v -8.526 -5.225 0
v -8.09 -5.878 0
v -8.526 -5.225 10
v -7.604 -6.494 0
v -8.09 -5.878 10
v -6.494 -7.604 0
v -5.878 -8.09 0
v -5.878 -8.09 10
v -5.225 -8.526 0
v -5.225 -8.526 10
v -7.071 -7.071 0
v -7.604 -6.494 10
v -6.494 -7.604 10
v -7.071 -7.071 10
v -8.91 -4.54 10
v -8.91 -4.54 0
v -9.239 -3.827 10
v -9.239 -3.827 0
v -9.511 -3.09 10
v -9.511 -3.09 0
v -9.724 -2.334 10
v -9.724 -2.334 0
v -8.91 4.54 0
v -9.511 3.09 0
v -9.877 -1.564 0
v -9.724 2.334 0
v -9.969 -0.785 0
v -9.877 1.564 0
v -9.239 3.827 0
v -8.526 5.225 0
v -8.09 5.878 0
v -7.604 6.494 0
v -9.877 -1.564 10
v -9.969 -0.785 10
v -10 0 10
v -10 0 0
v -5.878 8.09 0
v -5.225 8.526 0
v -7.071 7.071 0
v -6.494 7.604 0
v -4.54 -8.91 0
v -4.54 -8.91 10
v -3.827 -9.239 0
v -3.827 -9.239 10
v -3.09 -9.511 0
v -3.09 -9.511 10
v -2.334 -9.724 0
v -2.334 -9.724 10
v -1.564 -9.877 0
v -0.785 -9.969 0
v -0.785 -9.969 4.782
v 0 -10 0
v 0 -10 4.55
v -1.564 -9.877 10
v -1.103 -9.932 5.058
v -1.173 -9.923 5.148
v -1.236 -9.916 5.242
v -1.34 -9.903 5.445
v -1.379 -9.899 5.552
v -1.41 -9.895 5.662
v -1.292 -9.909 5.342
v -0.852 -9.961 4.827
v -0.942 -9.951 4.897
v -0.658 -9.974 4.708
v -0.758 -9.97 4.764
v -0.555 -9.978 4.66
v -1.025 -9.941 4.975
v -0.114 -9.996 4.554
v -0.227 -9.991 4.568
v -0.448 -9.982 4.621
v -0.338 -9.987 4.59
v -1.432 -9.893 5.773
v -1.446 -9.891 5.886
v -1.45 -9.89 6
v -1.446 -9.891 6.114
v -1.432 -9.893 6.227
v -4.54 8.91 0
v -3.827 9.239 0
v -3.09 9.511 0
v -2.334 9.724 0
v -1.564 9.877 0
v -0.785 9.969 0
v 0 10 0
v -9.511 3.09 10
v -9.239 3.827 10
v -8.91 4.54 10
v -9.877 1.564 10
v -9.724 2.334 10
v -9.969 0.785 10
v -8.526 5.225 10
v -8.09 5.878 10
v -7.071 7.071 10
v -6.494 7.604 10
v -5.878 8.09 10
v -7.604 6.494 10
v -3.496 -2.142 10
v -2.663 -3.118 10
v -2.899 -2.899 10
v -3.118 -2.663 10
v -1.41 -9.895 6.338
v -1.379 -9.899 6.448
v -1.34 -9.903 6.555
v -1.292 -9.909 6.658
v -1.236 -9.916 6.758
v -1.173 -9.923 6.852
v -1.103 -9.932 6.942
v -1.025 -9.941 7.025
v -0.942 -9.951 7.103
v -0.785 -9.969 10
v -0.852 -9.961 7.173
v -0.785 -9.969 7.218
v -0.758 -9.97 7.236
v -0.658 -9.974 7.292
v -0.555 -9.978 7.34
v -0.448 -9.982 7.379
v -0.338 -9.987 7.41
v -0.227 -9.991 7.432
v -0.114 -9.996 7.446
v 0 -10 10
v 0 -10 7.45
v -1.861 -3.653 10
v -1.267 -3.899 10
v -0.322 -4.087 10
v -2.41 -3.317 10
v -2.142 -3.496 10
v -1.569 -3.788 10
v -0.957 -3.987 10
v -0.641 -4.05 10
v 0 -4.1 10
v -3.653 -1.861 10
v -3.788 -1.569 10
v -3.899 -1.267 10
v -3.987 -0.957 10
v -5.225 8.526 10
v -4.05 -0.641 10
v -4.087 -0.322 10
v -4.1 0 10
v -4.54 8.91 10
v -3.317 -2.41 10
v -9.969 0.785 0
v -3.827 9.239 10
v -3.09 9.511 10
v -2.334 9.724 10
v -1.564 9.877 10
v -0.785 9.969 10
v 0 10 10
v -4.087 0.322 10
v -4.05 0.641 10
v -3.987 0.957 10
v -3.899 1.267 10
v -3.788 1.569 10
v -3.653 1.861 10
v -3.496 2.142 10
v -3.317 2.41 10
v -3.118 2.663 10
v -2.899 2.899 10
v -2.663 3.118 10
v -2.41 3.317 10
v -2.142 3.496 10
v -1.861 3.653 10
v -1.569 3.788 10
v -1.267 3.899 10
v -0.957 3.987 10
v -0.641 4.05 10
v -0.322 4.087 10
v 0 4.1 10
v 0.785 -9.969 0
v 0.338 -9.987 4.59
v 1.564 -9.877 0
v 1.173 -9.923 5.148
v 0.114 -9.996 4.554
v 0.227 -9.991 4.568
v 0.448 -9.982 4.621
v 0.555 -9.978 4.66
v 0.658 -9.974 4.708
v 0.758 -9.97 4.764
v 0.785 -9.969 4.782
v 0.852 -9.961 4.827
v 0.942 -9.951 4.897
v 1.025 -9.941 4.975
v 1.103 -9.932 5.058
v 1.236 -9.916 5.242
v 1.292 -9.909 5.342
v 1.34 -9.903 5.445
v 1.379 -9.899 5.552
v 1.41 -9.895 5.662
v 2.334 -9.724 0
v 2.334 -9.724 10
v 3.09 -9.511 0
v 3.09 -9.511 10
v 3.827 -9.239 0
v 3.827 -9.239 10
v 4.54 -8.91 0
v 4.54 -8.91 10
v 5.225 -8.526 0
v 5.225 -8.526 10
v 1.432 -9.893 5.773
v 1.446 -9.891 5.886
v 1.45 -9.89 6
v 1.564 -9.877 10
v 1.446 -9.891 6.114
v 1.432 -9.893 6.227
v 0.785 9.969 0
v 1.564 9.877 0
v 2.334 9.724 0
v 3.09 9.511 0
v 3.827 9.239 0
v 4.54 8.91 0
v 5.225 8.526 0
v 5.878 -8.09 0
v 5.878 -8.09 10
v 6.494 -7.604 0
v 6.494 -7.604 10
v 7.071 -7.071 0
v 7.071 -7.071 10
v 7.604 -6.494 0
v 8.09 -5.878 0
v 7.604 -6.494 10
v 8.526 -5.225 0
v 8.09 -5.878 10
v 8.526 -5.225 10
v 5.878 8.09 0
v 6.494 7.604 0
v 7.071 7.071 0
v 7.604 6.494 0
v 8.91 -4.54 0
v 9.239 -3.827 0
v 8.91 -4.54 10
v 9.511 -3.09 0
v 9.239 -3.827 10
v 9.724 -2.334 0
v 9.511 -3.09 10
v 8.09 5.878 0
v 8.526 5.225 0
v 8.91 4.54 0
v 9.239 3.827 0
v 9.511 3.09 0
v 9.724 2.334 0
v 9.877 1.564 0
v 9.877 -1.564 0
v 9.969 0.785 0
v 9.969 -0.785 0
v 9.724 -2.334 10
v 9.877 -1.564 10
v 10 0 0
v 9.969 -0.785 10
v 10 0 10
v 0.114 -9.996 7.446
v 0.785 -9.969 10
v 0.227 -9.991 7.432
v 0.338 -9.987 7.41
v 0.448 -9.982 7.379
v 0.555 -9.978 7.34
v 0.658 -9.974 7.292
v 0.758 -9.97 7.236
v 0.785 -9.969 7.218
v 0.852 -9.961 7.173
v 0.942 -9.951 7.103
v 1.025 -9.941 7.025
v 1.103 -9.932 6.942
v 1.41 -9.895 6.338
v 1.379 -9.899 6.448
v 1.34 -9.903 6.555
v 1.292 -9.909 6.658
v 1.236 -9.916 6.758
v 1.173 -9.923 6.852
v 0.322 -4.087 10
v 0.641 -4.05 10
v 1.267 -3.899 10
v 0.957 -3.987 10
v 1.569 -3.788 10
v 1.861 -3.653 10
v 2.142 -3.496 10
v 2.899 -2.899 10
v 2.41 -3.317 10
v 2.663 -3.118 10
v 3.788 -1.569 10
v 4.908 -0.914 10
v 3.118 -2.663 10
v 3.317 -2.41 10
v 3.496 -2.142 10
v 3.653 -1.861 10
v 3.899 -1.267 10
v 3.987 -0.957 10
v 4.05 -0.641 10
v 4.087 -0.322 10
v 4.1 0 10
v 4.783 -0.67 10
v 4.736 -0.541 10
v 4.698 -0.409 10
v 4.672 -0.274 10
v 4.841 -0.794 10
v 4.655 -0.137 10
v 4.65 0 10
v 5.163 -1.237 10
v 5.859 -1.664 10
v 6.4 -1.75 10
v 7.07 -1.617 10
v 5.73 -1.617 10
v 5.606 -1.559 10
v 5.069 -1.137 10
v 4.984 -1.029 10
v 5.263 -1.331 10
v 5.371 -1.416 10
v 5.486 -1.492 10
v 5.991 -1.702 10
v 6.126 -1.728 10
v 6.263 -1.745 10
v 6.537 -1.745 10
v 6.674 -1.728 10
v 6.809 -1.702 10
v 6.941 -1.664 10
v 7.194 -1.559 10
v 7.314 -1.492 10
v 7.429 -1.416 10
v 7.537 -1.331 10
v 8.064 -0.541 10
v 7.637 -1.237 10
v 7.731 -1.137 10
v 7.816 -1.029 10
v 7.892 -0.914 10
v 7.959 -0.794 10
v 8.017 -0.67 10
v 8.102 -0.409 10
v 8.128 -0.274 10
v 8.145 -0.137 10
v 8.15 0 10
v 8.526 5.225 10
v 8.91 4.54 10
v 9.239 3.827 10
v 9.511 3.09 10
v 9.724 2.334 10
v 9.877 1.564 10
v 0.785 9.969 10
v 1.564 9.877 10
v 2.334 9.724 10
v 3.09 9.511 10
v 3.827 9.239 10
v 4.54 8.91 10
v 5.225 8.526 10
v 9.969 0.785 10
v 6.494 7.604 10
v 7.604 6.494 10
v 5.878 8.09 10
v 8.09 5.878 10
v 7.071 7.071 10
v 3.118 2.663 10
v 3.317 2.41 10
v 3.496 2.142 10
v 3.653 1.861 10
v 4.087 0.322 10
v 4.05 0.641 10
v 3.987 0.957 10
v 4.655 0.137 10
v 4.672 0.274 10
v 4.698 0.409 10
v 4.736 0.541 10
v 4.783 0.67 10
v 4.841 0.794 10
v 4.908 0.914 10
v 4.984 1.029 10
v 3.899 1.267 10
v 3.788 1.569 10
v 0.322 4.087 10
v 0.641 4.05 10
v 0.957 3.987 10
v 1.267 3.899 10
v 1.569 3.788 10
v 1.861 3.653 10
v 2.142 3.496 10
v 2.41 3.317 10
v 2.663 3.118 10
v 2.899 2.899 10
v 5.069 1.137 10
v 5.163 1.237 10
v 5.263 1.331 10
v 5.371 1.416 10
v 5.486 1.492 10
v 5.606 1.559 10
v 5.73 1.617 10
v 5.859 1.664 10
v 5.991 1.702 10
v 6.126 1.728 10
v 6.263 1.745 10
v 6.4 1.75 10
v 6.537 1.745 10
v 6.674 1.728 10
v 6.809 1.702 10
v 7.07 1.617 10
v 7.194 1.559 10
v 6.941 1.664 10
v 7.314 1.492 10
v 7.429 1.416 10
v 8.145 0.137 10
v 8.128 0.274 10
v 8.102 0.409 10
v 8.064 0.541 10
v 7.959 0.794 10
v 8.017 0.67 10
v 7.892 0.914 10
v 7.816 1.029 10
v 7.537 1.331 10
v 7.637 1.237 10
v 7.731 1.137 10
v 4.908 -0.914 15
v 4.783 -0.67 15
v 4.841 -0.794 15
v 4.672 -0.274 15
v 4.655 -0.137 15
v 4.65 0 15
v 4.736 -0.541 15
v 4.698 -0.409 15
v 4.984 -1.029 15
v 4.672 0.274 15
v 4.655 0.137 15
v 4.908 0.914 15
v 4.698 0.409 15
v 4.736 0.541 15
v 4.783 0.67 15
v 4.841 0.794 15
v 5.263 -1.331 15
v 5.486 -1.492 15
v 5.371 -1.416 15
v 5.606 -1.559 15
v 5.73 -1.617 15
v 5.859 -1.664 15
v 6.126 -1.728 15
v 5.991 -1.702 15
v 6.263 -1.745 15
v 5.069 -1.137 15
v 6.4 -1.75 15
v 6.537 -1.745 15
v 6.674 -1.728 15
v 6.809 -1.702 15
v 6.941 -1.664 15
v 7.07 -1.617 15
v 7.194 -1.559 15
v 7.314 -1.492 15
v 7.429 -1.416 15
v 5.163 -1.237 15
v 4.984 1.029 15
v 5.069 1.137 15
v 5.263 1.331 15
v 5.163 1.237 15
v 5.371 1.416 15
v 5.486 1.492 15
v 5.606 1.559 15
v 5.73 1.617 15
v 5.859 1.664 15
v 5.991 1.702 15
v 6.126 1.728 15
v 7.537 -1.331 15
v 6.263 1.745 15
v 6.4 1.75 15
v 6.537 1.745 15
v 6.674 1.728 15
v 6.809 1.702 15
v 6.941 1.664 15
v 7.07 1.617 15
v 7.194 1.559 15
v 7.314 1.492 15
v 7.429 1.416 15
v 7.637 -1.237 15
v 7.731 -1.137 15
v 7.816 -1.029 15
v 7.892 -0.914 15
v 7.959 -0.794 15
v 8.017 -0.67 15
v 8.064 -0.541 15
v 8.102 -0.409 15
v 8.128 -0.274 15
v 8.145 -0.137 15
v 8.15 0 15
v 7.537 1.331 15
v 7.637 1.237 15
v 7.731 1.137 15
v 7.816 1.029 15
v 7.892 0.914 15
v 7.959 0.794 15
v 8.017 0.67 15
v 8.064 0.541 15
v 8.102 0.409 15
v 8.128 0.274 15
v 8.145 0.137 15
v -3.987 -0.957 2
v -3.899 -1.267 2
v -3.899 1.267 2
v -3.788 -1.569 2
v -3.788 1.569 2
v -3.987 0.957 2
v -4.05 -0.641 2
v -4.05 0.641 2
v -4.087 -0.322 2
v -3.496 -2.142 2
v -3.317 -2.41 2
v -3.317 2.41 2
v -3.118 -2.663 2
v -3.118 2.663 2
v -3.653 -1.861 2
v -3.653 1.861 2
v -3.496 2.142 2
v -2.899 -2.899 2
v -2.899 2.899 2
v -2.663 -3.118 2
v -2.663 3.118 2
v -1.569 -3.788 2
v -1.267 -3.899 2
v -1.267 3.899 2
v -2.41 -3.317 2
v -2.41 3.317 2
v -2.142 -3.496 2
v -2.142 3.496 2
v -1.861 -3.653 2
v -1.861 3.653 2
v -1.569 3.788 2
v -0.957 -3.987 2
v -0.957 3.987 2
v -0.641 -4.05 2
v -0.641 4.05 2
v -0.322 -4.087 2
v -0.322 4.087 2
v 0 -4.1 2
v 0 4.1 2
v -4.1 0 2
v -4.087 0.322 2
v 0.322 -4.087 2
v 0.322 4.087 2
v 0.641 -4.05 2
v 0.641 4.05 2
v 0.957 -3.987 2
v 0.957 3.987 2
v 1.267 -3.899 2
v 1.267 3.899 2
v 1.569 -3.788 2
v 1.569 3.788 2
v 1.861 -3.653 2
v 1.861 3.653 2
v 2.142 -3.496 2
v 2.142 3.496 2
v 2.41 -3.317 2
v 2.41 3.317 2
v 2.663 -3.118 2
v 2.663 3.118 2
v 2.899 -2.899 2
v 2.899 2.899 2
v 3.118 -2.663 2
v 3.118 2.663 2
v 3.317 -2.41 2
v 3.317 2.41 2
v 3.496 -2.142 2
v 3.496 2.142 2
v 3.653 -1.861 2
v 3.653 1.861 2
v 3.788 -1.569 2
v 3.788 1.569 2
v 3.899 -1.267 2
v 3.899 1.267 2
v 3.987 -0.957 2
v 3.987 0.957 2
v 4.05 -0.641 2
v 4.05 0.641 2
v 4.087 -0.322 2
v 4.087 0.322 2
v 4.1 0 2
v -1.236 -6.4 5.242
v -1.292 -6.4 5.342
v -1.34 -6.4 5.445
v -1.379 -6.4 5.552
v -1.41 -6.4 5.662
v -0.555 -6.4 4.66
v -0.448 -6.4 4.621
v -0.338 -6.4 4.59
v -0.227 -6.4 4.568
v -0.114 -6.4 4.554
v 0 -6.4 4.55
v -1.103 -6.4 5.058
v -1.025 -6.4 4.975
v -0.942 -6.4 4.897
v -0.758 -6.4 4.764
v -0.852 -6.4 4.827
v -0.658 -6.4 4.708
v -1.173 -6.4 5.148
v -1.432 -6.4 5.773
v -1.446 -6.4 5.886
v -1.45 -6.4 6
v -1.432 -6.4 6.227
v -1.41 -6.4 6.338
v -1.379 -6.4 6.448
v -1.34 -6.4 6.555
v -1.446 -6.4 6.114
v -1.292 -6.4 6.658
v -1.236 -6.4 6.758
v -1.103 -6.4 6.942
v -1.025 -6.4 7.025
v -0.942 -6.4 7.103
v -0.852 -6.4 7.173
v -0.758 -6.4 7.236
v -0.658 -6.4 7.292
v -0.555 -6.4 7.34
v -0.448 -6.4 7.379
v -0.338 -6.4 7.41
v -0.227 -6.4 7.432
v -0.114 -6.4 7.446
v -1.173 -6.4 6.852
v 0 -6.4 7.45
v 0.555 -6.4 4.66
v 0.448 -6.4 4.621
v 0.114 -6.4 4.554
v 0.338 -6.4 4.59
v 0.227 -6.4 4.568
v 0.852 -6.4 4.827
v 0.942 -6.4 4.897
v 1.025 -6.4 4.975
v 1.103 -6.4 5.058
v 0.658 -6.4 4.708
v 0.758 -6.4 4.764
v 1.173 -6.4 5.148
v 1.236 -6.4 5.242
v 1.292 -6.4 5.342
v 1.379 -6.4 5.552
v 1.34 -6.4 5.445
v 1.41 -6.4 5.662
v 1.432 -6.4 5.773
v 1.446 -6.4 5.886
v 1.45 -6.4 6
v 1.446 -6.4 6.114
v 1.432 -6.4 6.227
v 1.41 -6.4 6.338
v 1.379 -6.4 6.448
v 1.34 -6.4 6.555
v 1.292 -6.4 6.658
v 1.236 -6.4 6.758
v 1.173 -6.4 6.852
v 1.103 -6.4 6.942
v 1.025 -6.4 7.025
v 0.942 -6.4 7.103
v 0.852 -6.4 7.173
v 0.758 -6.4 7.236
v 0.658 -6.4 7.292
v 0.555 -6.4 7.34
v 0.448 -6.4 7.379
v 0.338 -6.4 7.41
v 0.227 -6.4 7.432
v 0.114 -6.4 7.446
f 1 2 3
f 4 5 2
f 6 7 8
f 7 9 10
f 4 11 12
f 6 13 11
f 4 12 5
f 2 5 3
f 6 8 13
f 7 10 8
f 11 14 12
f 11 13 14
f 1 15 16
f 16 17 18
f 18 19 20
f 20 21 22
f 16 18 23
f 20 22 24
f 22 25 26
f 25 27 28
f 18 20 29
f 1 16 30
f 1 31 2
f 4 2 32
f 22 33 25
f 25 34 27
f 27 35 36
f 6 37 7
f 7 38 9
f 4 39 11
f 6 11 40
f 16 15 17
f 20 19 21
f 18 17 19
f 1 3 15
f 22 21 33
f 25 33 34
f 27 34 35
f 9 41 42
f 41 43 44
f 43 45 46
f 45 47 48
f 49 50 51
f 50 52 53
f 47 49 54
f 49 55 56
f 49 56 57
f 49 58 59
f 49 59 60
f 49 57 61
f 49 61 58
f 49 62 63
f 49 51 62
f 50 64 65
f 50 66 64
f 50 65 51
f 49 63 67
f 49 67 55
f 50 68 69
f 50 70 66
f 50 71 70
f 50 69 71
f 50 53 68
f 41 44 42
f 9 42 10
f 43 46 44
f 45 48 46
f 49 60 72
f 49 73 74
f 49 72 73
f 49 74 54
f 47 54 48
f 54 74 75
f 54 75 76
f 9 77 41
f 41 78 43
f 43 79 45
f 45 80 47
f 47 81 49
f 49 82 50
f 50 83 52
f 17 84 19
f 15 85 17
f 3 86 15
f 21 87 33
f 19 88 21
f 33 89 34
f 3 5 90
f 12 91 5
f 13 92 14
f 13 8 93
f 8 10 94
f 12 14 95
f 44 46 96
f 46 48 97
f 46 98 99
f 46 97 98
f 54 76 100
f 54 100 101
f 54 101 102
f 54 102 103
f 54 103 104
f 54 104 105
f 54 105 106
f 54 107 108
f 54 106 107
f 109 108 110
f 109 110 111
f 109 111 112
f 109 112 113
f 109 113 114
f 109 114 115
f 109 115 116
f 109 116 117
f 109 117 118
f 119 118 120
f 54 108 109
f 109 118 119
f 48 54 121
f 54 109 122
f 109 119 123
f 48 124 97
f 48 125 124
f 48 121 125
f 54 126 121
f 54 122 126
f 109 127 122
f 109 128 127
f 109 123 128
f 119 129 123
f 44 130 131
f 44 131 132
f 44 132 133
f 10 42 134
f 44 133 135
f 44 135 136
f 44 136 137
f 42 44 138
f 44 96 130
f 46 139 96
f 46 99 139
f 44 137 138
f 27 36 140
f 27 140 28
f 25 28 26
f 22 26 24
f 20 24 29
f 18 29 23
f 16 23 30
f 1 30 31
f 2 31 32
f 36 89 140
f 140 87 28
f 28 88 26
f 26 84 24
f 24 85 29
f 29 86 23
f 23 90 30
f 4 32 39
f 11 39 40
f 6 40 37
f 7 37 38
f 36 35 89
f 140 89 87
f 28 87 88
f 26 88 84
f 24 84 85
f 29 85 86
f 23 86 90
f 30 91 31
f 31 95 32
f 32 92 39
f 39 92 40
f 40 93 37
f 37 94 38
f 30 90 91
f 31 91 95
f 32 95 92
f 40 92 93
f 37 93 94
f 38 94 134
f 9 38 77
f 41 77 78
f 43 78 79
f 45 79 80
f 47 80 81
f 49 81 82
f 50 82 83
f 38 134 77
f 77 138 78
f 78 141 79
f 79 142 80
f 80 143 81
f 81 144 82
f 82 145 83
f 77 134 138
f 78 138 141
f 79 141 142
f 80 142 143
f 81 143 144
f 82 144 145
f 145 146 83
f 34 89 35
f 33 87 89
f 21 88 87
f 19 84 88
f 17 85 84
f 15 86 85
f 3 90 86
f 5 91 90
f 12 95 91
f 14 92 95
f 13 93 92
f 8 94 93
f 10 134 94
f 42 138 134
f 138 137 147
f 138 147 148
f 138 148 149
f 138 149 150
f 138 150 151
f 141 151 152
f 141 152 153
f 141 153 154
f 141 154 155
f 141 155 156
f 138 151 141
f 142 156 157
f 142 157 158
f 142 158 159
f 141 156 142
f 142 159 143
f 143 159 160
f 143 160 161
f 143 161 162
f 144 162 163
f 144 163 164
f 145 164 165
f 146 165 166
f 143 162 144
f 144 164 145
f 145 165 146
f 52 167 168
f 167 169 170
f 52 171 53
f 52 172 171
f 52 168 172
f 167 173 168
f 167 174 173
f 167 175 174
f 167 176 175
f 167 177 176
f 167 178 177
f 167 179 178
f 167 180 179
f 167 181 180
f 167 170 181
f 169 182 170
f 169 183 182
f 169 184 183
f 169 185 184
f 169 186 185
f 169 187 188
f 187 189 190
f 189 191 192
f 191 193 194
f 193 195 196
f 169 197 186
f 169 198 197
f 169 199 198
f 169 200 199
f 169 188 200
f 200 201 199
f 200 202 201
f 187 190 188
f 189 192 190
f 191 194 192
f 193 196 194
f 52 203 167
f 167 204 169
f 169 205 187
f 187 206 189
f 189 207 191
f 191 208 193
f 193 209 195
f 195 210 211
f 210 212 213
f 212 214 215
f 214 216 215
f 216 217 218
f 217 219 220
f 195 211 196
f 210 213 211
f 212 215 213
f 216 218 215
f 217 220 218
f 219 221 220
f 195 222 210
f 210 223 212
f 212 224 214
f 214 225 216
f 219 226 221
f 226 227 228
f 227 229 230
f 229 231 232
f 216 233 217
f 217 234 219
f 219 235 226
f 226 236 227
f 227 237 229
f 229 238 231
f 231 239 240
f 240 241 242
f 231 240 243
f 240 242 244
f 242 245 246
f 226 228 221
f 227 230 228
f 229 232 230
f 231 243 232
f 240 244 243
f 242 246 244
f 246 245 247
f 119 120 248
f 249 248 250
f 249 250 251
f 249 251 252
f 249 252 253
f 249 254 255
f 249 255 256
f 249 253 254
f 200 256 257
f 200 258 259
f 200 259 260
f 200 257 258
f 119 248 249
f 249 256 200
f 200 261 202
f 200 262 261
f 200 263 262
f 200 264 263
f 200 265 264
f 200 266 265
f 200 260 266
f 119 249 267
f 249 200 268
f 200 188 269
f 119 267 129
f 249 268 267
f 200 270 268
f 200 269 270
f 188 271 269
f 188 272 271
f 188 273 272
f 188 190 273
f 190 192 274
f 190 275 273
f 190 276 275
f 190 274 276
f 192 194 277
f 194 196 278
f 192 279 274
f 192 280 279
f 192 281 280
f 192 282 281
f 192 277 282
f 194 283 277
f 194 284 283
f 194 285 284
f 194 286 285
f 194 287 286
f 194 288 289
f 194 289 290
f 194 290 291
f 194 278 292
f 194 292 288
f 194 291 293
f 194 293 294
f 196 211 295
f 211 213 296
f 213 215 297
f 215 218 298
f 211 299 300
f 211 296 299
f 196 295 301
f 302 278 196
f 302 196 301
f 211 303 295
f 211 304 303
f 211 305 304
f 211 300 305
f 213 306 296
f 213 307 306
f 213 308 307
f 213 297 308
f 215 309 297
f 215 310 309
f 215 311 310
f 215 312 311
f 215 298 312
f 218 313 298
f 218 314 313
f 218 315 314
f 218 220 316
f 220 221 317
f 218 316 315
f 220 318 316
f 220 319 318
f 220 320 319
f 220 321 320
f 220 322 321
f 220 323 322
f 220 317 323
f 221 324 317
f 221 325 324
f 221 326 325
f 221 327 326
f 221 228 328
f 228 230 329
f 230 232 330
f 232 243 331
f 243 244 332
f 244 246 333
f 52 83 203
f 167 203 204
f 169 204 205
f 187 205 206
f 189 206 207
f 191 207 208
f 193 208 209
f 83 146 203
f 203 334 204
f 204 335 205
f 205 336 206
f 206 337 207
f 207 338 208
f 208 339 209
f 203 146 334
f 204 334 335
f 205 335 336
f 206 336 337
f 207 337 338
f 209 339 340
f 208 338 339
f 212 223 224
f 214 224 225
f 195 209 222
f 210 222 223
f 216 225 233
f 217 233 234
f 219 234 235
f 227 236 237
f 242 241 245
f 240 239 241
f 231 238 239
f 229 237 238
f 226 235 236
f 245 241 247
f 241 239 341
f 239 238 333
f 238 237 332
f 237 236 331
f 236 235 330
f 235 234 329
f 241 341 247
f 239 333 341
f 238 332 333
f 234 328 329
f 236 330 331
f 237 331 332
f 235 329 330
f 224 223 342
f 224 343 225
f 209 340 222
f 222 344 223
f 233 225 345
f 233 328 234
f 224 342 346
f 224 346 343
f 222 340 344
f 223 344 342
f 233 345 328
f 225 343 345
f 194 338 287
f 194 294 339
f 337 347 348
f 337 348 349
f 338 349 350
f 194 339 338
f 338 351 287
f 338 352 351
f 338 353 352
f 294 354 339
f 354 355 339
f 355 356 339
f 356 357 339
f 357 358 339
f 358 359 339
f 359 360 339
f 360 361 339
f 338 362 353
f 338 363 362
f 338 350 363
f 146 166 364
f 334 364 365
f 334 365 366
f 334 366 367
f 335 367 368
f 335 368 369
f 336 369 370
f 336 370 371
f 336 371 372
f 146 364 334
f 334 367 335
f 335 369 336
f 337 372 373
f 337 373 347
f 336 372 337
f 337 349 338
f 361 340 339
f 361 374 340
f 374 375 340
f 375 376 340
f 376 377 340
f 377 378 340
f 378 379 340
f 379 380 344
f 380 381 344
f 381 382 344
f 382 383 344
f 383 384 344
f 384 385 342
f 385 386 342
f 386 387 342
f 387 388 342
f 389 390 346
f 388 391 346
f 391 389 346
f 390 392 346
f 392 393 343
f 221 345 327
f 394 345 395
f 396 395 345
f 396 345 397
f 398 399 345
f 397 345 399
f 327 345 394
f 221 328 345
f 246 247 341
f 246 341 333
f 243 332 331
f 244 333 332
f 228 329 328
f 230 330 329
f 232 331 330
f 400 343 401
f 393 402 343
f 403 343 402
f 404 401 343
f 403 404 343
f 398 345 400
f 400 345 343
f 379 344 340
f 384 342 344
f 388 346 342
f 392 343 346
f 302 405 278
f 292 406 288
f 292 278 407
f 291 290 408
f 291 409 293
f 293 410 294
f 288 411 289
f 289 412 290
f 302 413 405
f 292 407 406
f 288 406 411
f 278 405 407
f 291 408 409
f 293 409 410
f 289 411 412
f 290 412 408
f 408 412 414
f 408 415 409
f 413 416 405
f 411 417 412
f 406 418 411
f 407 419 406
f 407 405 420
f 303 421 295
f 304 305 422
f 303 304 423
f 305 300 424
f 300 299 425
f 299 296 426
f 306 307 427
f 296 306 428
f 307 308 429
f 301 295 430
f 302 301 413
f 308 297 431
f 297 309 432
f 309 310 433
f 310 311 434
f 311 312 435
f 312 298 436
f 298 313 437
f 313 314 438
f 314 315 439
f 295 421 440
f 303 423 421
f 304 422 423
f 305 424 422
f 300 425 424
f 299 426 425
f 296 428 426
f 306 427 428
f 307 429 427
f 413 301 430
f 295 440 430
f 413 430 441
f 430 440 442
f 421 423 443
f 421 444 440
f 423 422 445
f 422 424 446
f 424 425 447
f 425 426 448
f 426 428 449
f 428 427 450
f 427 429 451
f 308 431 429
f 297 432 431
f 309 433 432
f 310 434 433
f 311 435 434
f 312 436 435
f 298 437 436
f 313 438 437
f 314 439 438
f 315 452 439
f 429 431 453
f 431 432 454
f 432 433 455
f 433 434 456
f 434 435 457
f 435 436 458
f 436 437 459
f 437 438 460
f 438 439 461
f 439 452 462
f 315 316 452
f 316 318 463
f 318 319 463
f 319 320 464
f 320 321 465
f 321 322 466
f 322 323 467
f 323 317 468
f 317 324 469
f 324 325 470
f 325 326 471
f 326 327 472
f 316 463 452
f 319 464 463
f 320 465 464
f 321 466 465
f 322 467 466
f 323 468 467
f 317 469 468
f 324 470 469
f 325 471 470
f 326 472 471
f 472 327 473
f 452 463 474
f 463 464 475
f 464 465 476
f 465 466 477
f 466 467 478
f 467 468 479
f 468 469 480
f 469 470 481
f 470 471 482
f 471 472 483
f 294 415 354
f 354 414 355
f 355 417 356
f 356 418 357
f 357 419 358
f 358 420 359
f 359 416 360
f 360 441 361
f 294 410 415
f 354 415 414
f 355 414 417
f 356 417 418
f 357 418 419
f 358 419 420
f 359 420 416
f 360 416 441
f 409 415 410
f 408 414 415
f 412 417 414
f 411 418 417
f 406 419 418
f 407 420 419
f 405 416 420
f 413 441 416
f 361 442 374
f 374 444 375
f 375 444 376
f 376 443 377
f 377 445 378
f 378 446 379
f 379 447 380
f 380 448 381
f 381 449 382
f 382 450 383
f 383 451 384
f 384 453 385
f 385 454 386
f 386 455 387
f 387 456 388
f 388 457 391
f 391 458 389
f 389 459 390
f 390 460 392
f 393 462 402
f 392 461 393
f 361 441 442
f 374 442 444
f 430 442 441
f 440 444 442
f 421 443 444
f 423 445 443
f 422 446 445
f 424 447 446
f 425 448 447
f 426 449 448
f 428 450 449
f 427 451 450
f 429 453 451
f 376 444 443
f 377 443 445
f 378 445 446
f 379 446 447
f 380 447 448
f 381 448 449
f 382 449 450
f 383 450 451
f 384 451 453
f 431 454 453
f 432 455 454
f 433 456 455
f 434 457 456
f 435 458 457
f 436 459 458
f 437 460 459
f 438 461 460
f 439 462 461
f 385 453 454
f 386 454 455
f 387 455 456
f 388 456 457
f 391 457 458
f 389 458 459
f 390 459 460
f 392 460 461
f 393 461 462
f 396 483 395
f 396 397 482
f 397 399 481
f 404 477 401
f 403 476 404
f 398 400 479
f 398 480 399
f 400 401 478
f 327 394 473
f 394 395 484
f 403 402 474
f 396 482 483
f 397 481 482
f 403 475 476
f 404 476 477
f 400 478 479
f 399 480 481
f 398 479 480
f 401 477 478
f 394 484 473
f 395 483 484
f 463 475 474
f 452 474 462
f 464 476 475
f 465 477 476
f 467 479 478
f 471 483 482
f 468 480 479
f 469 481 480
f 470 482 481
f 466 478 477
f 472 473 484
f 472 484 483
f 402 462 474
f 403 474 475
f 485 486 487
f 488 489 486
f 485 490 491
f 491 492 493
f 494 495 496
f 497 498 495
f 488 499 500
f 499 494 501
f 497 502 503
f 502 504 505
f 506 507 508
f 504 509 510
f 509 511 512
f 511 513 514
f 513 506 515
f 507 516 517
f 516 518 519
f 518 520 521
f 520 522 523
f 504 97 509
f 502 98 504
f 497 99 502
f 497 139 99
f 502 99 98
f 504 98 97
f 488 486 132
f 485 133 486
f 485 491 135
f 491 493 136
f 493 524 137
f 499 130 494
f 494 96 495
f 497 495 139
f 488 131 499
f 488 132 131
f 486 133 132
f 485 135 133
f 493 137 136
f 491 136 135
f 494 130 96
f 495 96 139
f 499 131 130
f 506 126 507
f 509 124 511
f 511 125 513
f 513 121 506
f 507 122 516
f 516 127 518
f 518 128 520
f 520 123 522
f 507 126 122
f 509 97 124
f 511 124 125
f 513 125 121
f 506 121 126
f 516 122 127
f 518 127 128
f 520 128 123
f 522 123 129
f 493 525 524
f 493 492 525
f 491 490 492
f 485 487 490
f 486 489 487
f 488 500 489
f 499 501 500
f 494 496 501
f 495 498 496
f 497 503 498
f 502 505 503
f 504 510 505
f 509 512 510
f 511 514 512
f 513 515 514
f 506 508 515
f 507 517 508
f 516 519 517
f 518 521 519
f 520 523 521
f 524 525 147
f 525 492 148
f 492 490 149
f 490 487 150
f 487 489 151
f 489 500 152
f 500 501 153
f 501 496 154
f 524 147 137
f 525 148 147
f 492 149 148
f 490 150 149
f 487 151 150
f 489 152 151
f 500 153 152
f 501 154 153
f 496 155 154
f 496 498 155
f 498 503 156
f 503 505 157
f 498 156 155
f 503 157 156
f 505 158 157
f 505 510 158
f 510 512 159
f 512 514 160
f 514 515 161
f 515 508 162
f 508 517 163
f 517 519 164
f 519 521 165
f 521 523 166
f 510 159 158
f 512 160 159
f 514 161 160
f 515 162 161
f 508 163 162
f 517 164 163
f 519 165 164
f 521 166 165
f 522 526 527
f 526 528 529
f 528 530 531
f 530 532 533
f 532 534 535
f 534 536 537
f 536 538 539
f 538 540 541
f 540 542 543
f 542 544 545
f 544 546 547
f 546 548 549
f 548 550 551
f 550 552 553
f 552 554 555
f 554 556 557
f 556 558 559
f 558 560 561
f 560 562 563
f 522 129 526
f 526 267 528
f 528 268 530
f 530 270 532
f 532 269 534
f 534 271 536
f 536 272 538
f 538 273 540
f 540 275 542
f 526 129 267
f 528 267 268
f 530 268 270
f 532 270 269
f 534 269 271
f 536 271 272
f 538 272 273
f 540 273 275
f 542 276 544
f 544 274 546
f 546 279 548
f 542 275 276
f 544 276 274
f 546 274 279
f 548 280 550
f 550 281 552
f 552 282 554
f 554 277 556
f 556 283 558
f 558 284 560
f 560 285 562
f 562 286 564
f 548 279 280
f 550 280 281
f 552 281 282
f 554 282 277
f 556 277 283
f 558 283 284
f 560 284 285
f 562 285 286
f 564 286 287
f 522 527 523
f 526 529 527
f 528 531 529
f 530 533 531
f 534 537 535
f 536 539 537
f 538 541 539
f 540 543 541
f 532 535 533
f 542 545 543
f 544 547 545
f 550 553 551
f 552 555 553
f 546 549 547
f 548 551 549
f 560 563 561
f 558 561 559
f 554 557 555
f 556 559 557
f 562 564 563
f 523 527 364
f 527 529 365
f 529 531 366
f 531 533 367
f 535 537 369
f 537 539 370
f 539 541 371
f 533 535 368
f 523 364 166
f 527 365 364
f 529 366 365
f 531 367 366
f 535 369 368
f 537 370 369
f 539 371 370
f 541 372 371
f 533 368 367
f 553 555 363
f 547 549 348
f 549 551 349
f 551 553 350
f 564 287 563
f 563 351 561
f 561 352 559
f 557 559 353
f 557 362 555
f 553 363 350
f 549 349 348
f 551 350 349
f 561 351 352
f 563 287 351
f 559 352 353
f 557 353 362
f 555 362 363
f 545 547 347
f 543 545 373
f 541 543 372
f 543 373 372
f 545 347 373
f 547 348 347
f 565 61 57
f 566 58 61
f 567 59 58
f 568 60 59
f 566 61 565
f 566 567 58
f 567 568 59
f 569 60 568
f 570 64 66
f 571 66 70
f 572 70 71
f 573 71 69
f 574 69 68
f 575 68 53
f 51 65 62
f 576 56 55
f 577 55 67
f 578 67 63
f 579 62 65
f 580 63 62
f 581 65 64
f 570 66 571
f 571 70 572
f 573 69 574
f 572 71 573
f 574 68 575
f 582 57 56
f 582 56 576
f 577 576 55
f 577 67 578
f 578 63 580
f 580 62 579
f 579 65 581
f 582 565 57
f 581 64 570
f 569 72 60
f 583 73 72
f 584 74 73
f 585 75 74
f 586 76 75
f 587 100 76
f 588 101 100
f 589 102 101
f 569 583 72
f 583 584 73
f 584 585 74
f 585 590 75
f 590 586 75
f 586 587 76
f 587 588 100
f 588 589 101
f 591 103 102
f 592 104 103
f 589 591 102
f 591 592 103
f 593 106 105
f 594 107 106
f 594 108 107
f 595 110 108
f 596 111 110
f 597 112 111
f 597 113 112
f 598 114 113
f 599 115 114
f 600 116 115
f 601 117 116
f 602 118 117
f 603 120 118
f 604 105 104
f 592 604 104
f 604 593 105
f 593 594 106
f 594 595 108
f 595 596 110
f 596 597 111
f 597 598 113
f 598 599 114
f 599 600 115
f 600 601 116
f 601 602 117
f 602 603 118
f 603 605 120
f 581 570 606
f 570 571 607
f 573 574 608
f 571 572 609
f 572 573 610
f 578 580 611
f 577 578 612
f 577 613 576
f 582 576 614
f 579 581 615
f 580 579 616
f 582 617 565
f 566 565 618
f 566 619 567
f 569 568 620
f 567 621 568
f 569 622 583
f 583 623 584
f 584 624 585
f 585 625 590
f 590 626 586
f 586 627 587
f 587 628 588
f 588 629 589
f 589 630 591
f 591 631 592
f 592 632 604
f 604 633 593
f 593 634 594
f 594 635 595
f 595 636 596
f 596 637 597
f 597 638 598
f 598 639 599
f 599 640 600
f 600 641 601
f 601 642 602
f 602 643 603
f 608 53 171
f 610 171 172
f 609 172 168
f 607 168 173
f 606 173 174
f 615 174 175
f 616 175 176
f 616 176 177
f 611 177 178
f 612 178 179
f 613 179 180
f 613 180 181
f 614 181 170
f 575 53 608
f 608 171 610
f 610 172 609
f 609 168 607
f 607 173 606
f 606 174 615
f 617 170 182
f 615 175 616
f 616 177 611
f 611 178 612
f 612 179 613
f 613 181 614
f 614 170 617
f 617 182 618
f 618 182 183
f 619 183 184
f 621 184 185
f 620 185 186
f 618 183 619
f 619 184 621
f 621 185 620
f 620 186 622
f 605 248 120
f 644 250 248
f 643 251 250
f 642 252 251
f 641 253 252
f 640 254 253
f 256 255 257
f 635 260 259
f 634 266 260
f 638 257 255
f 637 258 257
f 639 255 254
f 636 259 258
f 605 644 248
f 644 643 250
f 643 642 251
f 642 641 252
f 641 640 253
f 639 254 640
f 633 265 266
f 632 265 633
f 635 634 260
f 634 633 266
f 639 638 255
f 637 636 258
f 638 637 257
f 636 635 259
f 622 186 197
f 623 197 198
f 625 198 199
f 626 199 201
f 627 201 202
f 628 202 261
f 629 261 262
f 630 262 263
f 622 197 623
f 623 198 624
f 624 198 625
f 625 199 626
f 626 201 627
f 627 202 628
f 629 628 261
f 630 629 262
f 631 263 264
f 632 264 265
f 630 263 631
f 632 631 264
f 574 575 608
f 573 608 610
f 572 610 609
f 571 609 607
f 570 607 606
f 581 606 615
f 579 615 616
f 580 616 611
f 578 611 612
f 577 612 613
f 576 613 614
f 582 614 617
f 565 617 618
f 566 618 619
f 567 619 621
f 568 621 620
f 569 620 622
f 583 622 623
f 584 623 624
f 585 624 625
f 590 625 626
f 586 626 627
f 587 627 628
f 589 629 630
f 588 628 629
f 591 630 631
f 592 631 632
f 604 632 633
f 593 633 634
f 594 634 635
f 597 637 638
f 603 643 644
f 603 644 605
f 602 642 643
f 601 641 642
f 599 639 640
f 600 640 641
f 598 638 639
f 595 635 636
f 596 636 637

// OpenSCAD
// file: design_params.scad
// ============================================================
// SKUA SHARED DESIGN PARAMETERS — single source of truth for
// every dimension two parts must agree on.
//
// Consumers:
//   - every part in cad/ does        include <design_params.scad>
//   - parts in cad/calibration/ do   include <../design_params.scad>
//   - scripts/check_params.py FAILS the build if any of these names
//     is re-declared anywhere else — change values HERE only.
//
// Keep this file to simple `name = value;` lines so the tooling can
// parse it. One-off experiments: `openscad -D name=value` beats the
// include, no need to edit this file.
// ============================================================

// --- Aluminum rod stock (bought; ONE diameter everywhere) ---
// 8 mm rod is chosen to match the 608 bearing bore, so the shaft and
// both arms cut from the same stock.
rod_d        = 8;
shaft_length = 300;  // vertical shaft; sets how high the rotor rides.
                     // Long enough that the hanging vanes clear the
                     // plank — geometry_check.py gates the clearance.
arm_length   = 600;  // each horizontal arm (two of them)

// --- 608 skateboard bearing (bought, TWO of them) ---
// Two bearings spaced apart in the base tower instead of one: a single
// 7 mm-wide bearing lets a 1.2 m rotor wobble; two races 45 mm apart
// make the shaft run true. They come in packs of 8 anyway.
bearing_od = 22;
bearing_w  = 7;
bearing_inner_shoulder_d = 12;  // inner-ring shoulder: anything riding
                                // the INNER race (collar boss) stays
                                // inside this; anything static stays
                                // outside it
pocket_recess = 0.5;  // bearings sit this far below the tower faces so
                      // the rotating inner race never rubs plank or collar body

// --- Calibrated fits (print the gauges, type the winners in here) ---
bearing_press_d = 21.8; // pocket that grips the outer race — cad/calibration/bearing_pocket_gauge.scad
rod_snug_d      = 8.2;  // sockets the rod presses into (hub, collar, cap) — cad/calibration/rod_fit_gauge.scad
rod_free_d      = 8.6;  // bores that must SPIN on the rod (vane sleeve) — same gauge
fit_tol         = 0.2;  // clearance for printed slots/pockets

// --- Base (screwed to the plank) ---
base_d         = 110;
base_t         = 6;
screw_hole_d   = 4.5;   // 4.2 mm wood screws
screw_head_d   = 9.5;   // countersink cone top diameter
screw_circle_d = 90;
screw_count    = 4;
tower_od       = 32;
tower_h        = 60;    // bearing pockets at top and bottom of this
tower_bore_d   = 19;    // between the pockets: retains the outer races,
                        // clears the 12 mm inner-race shoulders
gusset_t       = 4;
gusset_reach   = 16;    // how far a gusset runs out from the tower wall
gusset_h       = 35;

// --- Hub (clamps the shaft top, carries both arms) ---
hub_len          = 70;  // along the arms
hub_w            = 26;
hub_h            = 38;
hub_arm_z        = 30;  // arm bore axis above the hub bottom face
hub_shaft_socket = 22;  // blind shaft socket depth, from the bottom
hub_arm_socket   = 30;  // blind arm socket depth, from each end
hub_corner_r     = 6;

// --- M3 hardware (set screws and the collar clamp) ---
m3_thread_d = 2.9;  // screw forms its own thread (end cap set screw)
m3_clear_d  = 3.4;
m3_nut_af   = 5.8;  // nut across flats, incl. pocket clearance
m3_nut_t    = 2.6;
m3_head_d   = 6.4;

// --- Vane (the flapping flag; TWO of them) ---
vane_sleeve_len = 70;
vane_sleeve_od  = 16;
vane_width      = 150; // panel size along the arm
vane_drop       = 150; // sleeve AXIS to the panel bottom edge
vane_t          = 2;
vane_rim_w      = 3;   // stiffening rim around the panel
vane_rim_h      = 5;
vane_swing_deg  = 120; // free swing between the two stops

// --- Stop cap (arm tip: retains the vane, carries the stop pin) ---
cap_d          = 20;
cap_t          = 10;
cap_bore_depth = 8;
cap_pin_d      = 3.5;
cap_pin_len    = 5;
cap_pin_r      = 6.4;  // pin center radius: clears the rod, lands on the
                       // vane sleeve wall (geometry_check.py verifies both)

// --- Clamp collar (THREE: shaft thrust support + one per arm) ---
collar_od     = 20;
collar_w      = 8;
collar_boss_d = 12;    // rides the bearing inner race / vane sleeve end
collar_boss_h = 2;
collar_slit   = 2;

// --- Assembly stations / sanity limits ---
shaft_bottom_gap = 2;   // shaft tip hovers this far above the plank
printer_bed      = 210; // largest printable footprint, gates part sizes
// main file
// ==============================================================================
//   END CAP — arm tip: retains the vane and carries the swing-stop pin
//   (print TWO).
//
//   Slides over the last 8 mm of the arm rod, closed end outboard. The
//   axial pin on the open face rides in the vane sleeve's stop notch —
//   rotate the cap to set where the vane's driven stop sits (just past
//   hanging-vertical, see README), then tighten the M3 set screw. The
//   screw cuts its own thread in the printed 2.9 mm hole; it only holds
//   angle and axial position, so that is plenty.
//
//   Prints closed-end-down: the pin is a small vertical tower, the rod
//   bore a clean blind vertical hole.
// ==============================================================================

include <design_params.scad>

$fn = 80;

module end_cap() {
    difference() {
        union() {
            cylinder(h = cap_t, d = cap_d);
            // stop pin, on the open (rod-entry) face
            translate([cap_pin_r, 0, cap_t])
                cylinder(h = cap_pin_len, d = cap_pin_d);
        }
        // blind rod bore from the open face
        translate([0, 0, cap_t - cap_bore_depth])
            cylinder(h = cap_bore_depth + 0.1, d = rod_snug_d);
        // self-tapping M3 set screw, radial, into the bore
        translate([0, -cap_pin_r, cap_t - cap_bore_depth / 2])
            rotate([90, 0, 0])
                cylinder(h = cap_d / 2 + 1, d = m3_thread_d);
    }
}

end_cap();
